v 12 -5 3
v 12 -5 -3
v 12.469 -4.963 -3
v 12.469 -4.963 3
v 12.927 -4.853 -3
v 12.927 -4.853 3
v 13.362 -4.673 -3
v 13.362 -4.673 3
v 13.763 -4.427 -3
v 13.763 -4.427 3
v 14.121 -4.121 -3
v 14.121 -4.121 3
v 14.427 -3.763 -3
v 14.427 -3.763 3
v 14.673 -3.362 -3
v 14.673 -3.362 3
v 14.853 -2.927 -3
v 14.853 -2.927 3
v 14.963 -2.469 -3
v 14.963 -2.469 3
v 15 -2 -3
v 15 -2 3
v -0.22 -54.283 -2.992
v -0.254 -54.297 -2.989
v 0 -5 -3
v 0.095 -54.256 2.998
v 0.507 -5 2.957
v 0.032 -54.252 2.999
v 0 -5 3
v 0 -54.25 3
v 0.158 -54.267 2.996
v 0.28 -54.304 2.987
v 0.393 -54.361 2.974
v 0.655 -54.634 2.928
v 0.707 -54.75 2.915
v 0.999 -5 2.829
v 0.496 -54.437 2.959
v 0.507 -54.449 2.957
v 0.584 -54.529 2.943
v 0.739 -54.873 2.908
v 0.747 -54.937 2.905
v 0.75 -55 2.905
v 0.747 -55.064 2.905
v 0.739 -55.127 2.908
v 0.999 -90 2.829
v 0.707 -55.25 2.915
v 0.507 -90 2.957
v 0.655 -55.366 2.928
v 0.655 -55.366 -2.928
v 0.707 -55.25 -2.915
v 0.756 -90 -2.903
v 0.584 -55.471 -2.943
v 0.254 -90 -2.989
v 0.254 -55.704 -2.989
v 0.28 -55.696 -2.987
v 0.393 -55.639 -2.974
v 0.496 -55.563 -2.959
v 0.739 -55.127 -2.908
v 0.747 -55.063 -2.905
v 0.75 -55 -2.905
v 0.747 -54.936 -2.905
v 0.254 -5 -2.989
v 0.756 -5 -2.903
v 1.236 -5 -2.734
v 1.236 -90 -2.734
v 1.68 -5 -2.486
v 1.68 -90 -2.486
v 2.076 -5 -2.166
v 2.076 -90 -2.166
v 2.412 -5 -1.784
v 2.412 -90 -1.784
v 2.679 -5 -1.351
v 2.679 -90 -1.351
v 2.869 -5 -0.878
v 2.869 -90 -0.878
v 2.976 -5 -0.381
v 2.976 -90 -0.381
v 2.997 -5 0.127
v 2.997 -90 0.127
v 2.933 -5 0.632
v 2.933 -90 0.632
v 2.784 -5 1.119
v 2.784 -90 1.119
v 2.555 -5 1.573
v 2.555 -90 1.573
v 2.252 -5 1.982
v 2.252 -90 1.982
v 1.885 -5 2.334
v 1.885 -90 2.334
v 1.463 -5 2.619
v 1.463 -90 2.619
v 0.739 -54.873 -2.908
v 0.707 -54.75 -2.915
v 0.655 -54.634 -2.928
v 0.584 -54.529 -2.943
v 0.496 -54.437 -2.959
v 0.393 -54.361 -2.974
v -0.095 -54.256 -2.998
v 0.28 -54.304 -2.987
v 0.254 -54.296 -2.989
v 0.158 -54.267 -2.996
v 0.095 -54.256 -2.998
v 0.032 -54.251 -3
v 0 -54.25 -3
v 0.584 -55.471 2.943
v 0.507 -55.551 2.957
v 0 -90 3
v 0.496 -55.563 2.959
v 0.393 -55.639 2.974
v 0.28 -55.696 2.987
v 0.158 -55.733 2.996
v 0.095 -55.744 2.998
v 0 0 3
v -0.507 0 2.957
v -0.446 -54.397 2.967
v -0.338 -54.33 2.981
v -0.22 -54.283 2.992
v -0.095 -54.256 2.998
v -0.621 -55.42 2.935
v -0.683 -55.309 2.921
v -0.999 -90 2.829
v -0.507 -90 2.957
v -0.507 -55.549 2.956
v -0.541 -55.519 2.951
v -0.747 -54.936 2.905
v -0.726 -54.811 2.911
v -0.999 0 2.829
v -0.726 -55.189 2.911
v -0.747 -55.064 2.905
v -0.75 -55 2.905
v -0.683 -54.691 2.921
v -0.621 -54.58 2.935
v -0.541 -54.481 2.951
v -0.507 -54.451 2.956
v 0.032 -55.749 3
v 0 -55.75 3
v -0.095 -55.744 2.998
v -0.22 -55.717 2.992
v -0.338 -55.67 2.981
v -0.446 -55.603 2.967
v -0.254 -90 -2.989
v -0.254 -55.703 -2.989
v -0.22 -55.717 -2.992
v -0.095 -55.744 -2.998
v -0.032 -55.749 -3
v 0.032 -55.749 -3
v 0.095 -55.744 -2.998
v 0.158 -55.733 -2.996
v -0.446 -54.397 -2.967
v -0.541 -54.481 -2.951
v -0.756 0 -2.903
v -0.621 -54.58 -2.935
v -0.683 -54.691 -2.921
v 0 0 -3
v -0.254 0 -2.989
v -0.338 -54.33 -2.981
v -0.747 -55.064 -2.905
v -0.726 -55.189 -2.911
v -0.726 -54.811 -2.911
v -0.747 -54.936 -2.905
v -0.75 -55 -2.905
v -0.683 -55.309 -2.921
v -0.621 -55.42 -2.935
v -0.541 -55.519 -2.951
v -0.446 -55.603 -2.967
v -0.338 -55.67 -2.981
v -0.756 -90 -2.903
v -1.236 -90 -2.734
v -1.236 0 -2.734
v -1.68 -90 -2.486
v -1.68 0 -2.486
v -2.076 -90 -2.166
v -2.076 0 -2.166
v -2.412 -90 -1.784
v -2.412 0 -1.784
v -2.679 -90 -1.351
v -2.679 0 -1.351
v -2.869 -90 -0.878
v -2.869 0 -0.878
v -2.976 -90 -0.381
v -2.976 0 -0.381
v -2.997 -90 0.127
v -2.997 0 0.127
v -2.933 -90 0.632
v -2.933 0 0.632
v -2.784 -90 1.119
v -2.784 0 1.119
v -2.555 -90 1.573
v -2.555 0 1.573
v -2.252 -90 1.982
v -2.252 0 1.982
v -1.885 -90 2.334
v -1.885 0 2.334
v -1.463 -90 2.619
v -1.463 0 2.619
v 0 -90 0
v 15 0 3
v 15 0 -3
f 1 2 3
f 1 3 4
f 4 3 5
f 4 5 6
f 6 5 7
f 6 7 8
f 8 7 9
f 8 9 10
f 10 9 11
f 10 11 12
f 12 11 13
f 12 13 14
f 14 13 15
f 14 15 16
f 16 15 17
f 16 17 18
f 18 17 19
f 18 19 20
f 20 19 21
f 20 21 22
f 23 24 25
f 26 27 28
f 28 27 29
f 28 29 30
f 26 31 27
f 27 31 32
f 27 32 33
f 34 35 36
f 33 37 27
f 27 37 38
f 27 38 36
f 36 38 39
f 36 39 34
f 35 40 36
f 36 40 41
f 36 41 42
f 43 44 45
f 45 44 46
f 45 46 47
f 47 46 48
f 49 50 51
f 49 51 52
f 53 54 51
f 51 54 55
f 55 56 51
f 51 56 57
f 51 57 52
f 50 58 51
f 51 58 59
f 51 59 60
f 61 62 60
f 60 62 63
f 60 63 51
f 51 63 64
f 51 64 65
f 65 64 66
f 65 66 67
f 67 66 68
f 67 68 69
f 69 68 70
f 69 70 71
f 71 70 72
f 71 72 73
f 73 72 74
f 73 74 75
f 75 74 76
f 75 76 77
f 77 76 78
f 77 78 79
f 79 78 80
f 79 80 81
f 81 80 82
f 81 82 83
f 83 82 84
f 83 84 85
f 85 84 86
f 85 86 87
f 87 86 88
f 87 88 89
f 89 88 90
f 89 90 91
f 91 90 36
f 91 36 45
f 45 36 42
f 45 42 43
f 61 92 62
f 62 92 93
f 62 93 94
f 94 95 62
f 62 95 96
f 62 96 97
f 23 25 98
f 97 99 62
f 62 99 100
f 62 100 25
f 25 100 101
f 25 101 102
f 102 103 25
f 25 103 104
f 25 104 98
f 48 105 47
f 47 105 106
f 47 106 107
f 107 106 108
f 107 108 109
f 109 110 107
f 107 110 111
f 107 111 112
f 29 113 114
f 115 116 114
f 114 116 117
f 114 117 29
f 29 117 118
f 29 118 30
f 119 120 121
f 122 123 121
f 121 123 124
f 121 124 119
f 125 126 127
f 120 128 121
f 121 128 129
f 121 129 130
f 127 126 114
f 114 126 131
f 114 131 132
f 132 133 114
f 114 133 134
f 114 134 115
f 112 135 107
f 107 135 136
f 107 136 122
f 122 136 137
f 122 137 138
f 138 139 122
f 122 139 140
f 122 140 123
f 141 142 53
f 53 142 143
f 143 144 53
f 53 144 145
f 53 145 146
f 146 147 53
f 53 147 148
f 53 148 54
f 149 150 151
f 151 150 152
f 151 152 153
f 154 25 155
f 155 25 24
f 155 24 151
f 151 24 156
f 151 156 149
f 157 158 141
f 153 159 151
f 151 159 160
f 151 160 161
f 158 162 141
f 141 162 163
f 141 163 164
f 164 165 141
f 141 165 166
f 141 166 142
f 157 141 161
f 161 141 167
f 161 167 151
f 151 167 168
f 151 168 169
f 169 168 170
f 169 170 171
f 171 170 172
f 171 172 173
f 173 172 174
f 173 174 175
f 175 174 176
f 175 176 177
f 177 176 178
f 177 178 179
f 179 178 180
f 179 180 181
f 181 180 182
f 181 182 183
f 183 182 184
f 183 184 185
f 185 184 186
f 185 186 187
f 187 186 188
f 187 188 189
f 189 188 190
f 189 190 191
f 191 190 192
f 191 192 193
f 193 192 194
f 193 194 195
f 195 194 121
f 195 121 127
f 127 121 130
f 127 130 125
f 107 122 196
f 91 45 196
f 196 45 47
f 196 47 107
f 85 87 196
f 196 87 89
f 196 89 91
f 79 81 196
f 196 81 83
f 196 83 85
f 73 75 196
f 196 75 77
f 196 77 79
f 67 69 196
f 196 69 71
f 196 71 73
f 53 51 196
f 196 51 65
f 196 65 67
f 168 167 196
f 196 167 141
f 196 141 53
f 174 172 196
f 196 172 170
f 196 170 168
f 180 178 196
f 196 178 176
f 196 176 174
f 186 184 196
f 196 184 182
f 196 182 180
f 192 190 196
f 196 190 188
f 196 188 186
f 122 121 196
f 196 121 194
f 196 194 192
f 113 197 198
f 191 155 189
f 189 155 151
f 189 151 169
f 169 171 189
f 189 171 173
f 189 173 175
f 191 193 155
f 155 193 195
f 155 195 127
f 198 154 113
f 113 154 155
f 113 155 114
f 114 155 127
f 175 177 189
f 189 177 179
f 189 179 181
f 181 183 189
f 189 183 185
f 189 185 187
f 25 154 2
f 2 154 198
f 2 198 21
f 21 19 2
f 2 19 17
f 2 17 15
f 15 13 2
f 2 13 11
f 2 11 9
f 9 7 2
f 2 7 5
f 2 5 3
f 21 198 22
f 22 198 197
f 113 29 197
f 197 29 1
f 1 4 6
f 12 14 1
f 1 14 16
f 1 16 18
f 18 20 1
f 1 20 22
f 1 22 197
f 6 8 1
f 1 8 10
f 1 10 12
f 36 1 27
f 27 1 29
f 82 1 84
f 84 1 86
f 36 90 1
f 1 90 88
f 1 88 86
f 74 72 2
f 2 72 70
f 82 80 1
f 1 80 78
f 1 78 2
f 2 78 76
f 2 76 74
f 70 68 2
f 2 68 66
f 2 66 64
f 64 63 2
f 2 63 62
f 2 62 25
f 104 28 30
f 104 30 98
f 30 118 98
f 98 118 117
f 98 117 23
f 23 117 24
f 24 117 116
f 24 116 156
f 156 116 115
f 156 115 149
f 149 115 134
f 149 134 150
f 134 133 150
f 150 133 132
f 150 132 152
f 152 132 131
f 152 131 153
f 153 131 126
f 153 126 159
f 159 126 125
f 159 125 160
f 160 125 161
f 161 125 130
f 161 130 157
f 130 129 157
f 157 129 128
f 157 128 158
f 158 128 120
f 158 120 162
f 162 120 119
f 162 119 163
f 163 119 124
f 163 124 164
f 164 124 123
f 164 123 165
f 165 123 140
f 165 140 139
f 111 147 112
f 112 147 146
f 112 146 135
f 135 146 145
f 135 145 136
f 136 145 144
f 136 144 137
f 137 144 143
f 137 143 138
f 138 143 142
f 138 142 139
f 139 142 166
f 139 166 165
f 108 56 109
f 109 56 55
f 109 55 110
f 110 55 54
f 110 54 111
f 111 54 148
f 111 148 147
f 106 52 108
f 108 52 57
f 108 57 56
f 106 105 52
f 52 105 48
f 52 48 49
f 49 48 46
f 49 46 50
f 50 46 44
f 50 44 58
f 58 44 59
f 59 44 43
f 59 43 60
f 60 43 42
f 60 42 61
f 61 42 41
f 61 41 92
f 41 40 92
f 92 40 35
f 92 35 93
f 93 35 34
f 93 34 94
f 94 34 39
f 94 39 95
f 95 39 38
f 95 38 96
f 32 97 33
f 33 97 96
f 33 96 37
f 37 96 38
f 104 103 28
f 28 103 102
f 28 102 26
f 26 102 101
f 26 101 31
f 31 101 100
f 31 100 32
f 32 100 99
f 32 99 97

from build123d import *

# Parameters (mm, degrees)
SKETCH1_R           = 3
BOSS_EXTRUDE1_DEPTH = 90
BOSS_EXTRUDE2_DEPTH = 5
FILLET2_R           = 3
SKETCH5_R           = 0.75
CUT_EXTRUDE2_DEPTH  = 92.438503925


with BuildPart() as part:
    # Sketch1 → Boss-Extrude1 (new body)
    with BuildSketch(Plane(origin=(0, 0, 0), x_dir=(1, 0, 0), z_dir=(0, 1, 0))):
        with Locations(Location((0, 0, 0), (0, 0, 270))):
            Circle(SKETCH1_R)
    extrude(amount=-BOSS_EXTRUDE1_DEPTH)

    # Sketch2 → Boss-Extrude2 (add)
    with BuildSketch(Plane(origin=(0, 0, 0), x_dir=(1, 0, 0), z_dir=(0, 1, 0))):
        Polygon((0, 0), (0, 3), (15, 3), (15, -3), (0, -3), align=None)
    extrude(amount=-BOSS_EXTRUDE2_DEPTH)

    # Fillet2
    fillet2_edges = [part.edges().sort_by_distance(p)[0] for p in [
        (15, -5, 0),
    ]]
    fillet(fillet2_edges, radius=FILLET2_R)

    # Sketch5 → Cut-Extrude2 (cut, through all)
    with BuildSketch(Plane.XY.offset(3)):
        with Locations(Location((0, -55, 0), (0, 0, 90))):
            Circle(SKETCH5_R)
    extrude(amount=-CUT_EXTRUDE2_DEPTH, mode=Mode.SUBTRACT)


solid = part.part
